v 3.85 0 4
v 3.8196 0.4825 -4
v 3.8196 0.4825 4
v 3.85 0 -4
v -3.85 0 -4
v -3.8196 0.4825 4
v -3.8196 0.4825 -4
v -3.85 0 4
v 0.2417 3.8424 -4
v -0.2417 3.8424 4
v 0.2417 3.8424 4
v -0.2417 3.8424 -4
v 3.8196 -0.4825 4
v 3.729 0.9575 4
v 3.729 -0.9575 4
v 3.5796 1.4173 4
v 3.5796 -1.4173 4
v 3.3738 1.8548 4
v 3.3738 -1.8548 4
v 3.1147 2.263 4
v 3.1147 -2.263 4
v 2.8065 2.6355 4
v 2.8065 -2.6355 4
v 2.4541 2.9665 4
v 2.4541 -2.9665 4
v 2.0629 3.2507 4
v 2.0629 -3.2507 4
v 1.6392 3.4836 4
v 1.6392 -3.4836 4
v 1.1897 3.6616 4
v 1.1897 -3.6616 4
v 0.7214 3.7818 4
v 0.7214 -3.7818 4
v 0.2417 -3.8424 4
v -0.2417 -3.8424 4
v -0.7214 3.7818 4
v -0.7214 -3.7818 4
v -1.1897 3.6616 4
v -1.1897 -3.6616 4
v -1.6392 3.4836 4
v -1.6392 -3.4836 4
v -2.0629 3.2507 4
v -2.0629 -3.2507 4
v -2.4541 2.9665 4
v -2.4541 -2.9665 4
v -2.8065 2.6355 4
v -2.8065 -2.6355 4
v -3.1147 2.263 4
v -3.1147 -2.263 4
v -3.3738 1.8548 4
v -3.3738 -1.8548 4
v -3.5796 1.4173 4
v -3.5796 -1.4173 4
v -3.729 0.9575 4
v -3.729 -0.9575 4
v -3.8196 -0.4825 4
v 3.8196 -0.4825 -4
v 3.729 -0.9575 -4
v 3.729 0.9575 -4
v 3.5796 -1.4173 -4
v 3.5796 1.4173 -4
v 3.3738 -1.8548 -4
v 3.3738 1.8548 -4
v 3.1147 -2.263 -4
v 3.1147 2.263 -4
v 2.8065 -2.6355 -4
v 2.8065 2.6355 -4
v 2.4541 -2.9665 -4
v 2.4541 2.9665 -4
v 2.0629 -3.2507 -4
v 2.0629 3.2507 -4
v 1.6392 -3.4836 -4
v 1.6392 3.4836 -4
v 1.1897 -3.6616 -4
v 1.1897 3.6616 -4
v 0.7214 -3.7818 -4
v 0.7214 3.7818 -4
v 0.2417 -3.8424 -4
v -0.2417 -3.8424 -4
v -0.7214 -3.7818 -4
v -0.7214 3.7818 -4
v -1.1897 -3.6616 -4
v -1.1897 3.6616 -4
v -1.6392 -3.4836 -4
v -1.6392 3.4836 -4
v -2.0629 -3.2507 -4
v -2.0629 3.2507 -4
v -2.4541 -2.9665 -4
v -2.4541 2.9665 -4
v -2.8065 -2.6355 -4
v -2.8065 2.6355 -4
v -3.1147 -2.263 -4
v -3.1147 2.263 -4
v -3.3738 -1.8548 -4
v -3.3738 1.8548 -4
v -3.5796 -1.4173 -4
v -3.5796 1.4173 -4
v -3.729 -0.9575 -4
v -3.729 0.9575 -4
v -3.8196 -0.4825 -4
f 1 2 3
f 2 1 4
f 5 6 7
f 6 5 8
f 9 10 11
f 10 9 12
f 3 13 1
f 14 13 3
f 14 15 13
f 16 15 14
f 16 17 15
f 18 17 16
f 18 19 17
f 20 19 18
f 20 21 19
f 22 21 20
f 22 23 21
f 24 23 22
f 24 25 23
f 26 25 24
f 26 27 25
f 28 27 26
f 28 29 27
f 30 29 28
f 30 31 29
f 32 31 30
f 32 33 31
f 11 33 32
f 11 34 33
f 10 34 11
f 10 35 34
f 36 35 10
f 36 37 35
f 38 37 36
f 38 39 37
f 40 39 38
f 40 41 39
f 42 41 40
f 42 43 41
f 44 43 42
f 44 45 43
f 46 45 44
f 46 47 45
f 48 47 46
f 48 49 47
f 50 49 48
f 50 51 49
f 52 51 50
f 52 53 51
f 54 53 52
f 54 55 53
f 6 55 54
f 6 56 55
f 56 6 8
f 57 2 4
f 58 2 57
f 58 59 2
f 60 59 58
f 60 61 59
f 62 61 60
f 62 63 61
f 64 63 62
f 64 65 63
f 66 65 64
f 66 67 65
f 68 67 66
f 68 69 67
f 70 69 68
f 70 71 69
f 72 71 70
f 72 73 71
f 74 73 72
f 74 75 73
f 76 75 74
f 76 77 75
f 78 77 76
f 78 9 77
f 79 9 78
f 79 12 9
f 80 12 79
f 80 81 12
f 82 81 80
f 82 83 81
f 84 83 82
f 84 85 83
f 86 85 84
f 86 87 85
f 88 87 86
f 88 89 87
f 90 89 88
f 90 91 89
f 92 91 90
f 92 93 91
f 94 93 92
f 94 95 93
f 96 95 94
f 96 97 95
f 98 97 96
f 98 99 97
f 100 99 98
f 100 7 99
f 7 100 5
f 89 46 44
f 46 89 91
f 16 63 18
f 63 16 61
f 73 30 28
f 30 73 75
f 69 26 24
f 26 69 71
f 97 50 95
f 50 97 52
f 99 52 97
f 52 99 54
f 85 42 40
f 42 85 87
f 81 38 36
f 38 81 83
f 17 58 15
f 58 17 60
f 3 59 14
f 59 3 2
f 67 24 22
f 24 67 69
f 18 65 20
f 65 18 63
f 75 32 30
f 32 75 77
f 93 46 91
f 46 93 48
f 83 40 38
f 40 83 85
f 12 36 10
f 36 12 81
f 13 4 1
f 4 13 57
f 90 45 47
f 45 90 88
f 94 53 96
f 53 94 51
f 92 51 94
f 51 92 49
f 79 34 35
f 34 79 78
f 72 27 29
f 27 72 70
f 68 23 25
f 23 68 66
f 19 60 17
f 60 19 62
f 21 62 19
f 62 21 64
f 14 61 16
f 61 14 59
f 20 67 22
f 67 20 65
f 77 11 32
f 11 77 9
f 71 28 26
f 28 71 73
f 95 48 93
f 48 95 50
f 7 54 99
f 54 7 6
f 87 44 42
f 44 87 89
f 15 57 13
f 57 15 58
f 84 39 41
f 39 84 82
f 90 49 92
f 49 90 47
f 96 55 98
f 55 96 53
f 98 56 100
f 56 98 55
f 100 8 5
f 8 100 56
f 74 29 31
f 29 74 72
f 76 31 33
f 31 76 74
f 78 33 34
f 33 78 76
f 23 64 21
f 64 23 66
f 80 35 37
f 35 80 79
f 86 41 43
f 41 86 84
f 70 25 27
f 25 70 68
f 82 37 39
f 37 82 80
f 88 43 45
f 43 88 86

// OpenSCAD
$fn = 50;


difference() {
	union() {
		translate(v = [0, 0, -4.0000000000]) {
			cylinder(h = 8, r = 3.8500000000);
		}
	}
	union() {
		translate(v = [0, 0, -100.0000000000]) {
			cylinder(h = 200, r = 0);
		}
	}
}
